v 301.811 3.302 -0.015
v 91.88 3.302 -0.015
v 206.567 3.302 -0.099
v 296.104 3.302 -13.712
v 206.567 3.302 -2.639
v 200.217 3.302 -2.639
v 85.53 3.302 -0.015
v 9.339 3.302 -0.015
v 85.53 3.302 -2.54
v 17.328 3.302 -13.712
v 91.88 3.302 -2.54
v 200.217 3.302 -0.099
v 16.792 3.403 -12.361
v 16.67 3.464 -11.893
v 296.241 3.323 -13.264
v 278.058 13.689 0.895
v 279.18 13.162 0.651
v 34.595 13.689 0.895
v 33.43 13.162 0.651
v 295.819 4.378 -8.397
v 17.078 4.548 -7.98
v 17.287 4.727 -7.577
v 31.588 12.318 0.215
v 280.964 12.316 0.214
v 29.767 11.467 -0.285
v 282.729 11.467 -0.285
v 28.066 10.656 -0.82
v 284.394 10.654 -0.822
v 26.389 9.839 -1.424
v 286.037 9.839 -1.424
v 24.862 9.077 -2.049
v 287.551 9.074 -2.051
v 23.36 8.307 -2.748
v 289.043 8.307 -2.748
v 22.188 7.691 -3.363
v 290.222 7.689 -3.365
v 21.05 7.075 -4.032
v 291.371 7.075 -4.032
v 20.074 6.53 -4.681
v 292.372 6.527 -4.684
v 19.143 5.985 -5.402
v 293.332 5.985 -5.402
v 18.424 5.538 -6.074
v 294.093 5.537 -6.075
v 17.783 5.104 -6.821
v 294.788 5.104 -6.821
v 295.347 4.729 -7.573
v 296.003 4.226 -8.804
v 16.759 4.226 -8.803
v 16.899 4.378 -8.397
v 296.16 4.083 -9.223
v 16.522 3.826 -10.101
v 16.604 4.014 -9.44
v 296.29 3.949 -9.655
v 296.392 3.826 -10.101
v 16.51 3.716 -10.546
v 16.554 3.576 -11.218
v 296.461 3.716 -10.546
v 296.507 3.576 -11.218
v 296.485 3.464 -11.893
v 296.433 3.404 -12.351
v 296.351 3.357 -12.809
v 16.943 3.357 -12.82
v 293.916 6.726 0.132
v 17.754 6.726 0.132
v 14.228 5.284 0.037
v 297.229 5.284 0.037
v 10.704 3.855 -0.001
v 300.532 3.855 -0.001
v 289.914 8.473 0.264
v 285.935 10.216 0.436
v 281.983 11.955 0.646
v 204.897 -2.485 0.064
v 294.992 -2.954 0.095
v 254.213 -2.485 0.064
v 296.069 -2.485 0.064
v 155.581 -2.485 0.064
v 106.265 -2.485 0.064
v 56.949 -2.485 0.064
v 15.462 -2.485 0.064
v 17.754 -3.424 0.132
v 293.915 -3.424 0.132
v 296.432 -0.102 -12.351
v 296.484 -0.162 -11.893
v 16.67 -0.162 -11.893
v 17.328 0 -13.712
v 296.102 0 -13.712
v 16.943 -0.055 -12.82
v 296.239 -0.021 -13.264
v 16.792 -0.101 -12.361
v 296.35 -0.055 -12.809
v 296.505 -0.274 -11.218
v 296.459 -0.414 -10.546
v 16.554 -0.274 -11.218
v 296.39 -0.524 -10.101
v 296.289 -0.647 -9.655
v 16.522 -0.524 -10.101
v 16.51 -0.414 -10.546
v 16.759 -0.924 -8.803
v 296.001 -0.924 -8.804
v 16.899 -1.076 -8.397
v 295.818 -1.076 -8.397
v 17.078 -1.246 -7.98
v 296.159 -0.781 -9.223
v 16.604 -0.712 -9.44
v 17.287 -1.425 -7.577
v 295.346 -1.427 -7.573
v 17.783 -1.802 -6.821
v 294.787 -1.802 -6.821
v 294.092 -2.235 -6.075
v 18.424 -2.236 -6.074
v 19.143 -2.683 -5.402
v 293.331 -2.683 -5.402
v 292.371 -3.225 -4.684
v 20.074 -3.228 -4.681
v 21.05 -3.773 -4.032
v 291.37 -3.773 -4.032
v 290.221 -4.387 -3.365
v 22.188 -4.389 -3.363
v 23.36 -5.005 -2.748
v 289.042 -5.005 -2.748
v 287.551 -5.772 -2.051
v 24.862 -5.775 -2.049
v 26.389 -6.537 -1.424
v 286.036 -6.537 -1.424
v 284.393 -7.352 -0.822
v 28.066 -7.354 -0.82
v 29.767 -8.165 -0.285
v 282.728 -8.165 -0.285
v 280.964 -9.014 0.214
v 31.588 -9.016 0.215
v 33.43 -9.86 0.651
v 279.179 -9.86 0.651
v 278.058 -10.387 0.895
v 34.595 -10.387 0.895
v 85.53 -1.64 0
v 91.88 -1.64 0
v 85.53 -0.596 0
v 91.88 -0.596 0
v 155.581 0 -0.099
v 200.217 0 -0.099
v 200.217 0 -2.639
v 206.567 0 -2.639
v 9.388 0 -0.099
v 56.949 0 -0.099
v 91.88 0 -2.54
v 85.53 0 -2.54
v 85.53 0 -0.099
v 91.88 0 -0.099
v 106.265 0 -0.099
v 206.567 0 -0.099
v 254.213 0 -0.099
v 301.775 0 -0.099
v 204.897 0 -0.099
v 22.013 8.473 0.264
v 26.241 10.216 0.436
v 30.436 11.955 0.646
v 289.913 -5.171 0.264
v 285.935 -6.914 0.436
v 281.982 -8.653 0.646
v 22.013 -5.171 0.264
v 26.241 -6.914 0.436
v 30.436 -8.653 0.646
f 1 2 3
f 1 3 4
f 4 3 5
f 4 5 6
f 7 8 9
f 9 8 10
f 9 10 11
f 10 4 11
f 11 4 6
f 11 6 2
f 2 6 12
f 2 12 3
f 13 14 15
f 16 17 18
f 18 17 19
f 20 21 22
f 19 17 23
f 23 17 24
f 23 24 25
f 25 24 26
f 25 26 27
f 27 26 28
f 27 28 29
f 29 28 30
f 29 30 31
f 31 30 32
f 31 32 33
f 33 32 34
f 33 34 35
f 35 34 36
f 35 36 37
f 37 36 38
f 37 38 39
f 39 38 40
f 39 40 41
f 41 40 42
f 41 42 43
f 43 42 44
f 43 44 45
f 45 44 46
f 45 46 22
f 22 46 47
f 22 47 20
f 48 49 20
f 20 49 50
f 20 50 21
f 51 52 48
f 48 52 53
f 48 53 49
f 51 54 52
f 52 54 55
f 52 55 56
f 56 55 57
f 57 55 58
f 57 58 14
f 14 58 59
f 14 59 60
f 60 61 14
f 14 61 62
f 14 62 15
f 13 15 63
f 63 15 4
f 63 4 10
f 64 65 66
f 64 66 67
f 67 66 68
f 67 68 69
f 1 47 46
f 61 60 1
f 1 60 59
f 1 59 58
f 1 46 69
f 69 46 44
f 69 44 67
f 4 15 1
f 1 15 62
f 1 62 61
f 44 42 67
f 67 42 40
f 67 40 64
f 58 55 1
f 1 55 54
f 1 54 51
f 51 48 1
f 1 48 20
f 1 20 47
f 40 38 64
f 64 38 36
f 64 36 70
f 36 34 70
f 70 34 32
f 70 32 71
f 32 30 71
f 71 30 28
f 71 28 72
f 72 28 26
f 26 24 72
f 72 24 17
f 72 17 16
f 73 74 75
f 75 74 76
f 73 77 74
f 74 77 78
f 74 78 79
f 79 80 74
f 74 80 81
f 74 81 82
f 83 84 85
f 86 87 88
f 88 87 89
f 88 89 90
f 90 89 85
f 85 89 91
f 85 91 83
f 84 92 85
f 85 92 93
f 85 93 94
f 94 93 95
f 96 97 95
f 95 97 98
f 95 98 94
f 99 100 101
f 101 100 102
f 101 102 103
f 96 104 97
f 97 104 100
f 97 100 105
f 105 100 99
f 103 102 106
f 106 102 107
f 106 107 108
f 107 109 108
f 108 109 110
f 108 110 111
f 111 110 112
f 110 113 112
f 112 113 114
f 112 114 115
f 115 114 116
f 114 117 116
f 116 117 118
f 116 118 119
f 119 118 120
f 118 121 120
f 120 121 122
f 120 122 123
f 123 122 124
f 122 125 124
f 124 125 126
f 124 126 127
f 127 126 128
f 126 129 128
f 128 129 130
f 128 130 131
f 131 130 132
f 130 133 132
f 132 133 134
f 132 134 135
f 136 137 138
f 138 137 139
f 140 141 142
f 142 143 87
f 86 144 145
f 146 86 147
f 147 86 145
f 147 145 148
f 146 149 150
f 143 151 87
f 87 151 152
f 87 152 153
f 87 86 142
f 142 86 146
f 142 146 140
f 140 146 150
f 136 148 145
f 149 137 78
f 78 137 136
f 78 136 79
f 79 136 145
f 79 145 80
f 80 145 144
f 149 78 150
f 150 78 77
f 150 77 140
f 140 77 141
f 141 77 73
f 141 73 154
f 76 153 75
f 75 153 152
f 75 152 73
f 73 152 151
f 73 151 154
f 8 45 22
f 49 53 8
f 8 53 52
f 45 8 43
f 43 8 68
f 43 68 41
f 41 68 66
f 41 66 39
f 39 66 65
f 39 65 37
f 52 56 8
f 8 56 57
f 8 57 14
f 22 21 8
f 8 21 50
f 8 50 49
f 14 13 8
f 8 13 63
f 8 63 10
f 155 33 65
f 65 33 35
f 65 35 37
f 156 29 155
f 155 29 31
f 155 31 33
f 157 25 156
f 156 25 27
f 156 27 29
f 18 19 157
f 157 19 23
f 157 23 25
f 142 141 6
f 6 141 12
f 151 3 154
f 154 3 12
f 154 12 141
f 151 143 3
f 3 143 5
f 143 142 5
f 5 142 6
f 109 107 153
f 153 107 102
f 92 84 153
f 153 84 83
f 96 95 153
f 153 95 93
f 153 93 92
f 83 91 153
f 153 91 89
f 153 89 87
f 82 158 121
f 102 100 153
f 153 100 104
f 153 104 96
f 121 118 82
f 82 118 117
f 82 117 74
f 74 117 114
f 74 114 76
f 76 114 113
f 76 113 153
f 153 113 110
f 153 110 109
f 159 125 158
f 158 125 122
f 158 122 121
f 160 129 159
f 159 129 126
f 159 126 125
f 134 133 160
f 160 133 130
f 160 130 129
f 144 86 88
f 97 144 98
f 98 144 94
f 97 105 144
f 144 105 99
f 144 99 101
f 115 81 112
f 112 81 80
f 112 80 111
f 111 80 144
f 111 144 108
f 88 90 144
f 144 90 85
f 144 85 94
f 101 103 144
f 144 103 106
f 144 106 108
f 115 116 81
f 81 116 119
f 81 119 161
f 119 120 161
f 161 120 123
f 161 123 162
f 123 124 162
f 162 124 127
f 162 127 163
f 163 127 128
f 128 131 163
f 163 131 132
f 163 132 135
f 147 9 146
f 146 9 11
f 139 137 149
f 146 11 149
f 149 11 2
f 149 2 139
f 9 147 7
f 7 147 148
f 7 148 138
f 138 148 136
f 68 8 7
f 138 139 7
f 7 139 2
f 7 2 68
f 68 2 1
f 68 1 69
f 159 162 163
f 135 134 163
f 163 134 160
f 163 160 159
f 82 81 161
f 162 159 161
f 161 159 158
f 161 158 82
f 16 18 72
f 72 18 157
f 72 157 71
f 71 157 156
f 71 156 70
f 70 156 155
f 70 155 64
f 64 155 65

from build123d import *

# Parameters (mm, degrees)
BOSS_EXTRUDE1_DEPTH      = 3.302
CHAMFER1_SIZE            = 1.27
CHAMFER1_SIZE2           = 2.723523789
CHAMFER1_PART_2_SIZE     = 1.27
CHAMFER1_PART_2_SIZE2    = 2.723523789
CHAMFER1_PART_3_SIZE     = 1.27
CHAMFER1_PART_3_SIZE2    = 2.723523789
BOSS_EXTRUDE2_DEPTH      = 304.8
LEADING_SIDE_DEPTH       = 8.679028657
LEADING_SIDE_DEPTH_BACK  = 277.442337519
TRAILING_SIDE_DEPTH      = 254
TRAILING_SIDE_DEPTH_BACK = 27.94
SKETCH9_W                = 305.493611557
SKETCH9_H                = 3.302
CUT_EXTRUDE1_DEPTH       = 9.89
CUT_EXTRUDE1_DEPTH_BACK  = 143.24
BOSS_EXTRUDE3_REACH      = 16.738
SKETCH10_W               = 6.35
SKETCH10_H               = 2.54
BOSS_EXTRUDE4_REACH      = 16.738
SKETCH11_W               = 6.35
SKETCH11_H               = 2.54
SKETCH12_R               = 78.609915156
CUT_EXTRUDE3_DEPTH       = 302.817401479


with BuildPart() as part:
    # Sketch1 → Boss-Extrude1 (new body)
    with BuildSketch(Plane(origin=(0, 0, 0), x_dir=(1, 0, 0), z_dir=(0, 1, 0))):
        Polygon((0, 0), (88.9, 142.24), (241.3, 142.24), (304.8, 0), (151.13, 0), (151.13, -8.89), (113.03, -8.89), (113.03, 0), align=None)
    extrude(amount=BOSS_EXTRUDE1_DEPTH)

    # Chamfer1
    chamfer1_edges = [part.edges().sort_by_distance(p)[0] for p in [
        (273.05, 3.302, -71.12),
        (273.05, 0, -71.12),
    ]]
    chamfer1_side = [part.faces().sort_by_distance(p)[0] for p in [
        (273.05, 1.651, -71.12),
    ]]
    chamfer(chamfer1_edges, length=CHAMFER1_SIZE, length2=CHAMFER1_SIZE2, reference=chamfer1_side[0])

    # Chamfer1 part 2
    chamfer1_part_2_edges = [part.edges().sort_by_distance(p)[0] for p in [
        (165.1, 3.302, -142.24),
        (165.1, 0, -142.24),
    ]]
    chamfer1_part_2_side = [part.faces().sort_by_distance(p)[0] for p in [
        (165.1, 1.651, -142.24),
    ]]
    chamfer(chamfer1_part_2_edges, length=CHAMFER1_PART_2_SIZE, length2=CHAMFER1_PART_2_SIZE2, reference=chamfer1_part_2_side[0])

    # Chamfer1 part 3
    chamfer1_part_3_edges = [part.edges().sort_by_distance(p)[0] for p in [
        (44.45, 3.302, -71.12),
        (44.45, 0, -71.12),
    ]]
    chamfer1_part_3_side = [part.faces().sort_by_distance(p)[0] for p in [
        (44.45, 1.651, -71.12),
    ]]
    chamfer(chamfer1_part_3_edges, length=CHAMFER1_PART_3_SIZE, length2=CHAMFER1_PART_3_SIZE2, reference=chamfer1_part_3_side[0])

    # Sketch2 → Boss-Extrude2 (add)
    with BuildSketch(Plane(origin=(0, 0, 0), x_dir=(0, 0, -1), z_dir=(1, 0, 0))):
        with BuildLine():
            Line((0, 3.302), (0.193860014, 3.302))
            ThreePointArc((0.193860014, 3.302), (0.095787095, 7.86512735), (-0.267795454, 12.414803957))
            add(Edge.make_bspline(
                [(-0.267795454, 12.414803957), (-0.672599921, 13.160197553), (-1.025420185, 13.935695512), (-1.319449565, 14.73847888)],
                knots=[0.873023633, 0.873023633, 0.873023633, 0.873023633, 1, 1, 1, 1], degree=3))
            add(Edge.make_bspline(
                [(-1.319449565, 14.73847888), (-0.620020797, 10.967807625), (0.041688756, 7.150478935), (0, 3.302)],
                knots=[0, 0, 0, 0, 1, 1, 1, 1], degree=3))
        make_face()
        with BuildLine():
            ThreePointArc((-0.267795454, 12.414803957), (0.095787095, 7.86512735), (0.193860014, 3.302))
            Line((0.193860014, 3.302), (13.71197658, 3.302))
            add(Edge.make_bspline(
                [(13.71197658, 3.302), (11.020860037, 3.394720033), (7.304618249, 4.403456005), (2.735609274, 8.059966642), (0.759058851, 10.523988305), (-0.267795454, 12.414803957)],
                knots=[0, 0, 0, 0, 0.405371861, 0.550926818, 0.873023633, 0.873023633, 0.873023633, 0.873023633], degree=3))
        make_face()
        with BuildLine():
            Line((13.71197658, 0), (0.099005708, 0))
            ThreePointArc((0.099005708, 0), (0.027136855, -1.243216756), (-0.064479677, -2.485134404))
            add(Edge.make_bspline(
                [(-0.706755386, -7.960561287), (-0.413166837, -6.144437691), (-0.174809494, -4.318730126), (-0.064479677, -2.485134404)],
                knots=[0.306156166, 0.306156166, 0.306156166, 0.306156166, 0.784361963, 0.784361963, 0.784361963, 0.784361963], degree=3))
            ThreePointArc((-0.706755386, -7.960561287), (-0.993529388, -9.701970199), (-1.319449565, -11.43647888))
            add(Edge.make_bspline(
                [(13.71197658, 0), (11.020860037, -0.092720033), (7.304618249, -1.101456005), (2.071072669, -5.289785507), (-0.279565435, -8.597301093), (-1.319449565, -11.43647888)],
                knots=[0, 0, 0, 0, 0.405371861, 0.550926818, 1, 1, 1, 1], degree=3))
        make_face()
    extrude(amount=BOSS_EXTRUDE2_DEPTH)

    # Sketch4 → Leading Side (cut, two sides)
    with BuildSketch(Plane(origin=(0, 0, 0), x_dir=(0, -1, 0), z_dir=(-0.503864435, 0, 0.863782745))) as leading_side_sk:
        Polygon((0, -7.461077899), (0, 8.059009466), (11.69047888, 33.129322328), (11.69047888, -6.284577832), align=None)
        Polygon((-14.99247888, 33.129322328), (-14.99247888, -6.284577832), (-3.302, -7.461077899), (-3.302, 8.059009466), align=None)
    extrude(amount=LEADING_SIDE_DEPTH, mode=Mode.SUBTRACT)
    extrude(leading_side_sk.sketch, amount=-LEADING_SIDE_DEPTH_BACK, mode=Mode.SUBTRACT)

    # Sketch6 → Trailing Side (cut, two sides)
    with BuildSketch(Plane(origin=(45.089267536, 0, 108.213523637), x_dir=(0, -1, 0), z_dir=(-0.38461756, 0, -0.923076016))) as trailing_side_sk:
        Polygon((0, -286.627436809), (0, -278.59888787), (11.43647888, -254.073279765), (11.43647888, -287.965550571), align=None)
        Polygon((-14.73847888, -254.073279765), (-14.73847888, -287.965550571), (-3.302, -286.627436809), (-3.302, -278.600404574), align=None)
    extrude(amount=TRAILING_SIDE_DEPTH, mode=Mode.SUBTRACT)
    extrude(trailing_side_sk.sketch, amount=-TRAILING_SIDE_DEPTH_BACK, mode=Mode.SUBTRACT)

    # Sketch9 → Cut-Extrude1 (cut, two sides)
    with BuildSketch(Plane.XY) as cut_extrude1_sk:
        with Locations((152.259463857, 1.651)):
            Rectangle(SKETCH9_W, SKETCH9_H)
    extrude(amount=CUT_EXTRUDE1_DEPTH, mode=Mode.SUBTRACT)
    extrude(cut_extrude1_sk.sketch, amount=-CUT_EXTRUDE1_DEPTH_BACK, mode=Mode.SUBTRACT)

    # Sketch10 → Boss-Extrude3 (add, up to next)
    with BuildSketch(Plane(origin=(0, 0, 0), x_dir=(1, 0, 0), z_dir=(0, 1, 0)), mode=Mode.PRIVATE) as boss_extrude3_sk1:
        with Locations((203.392401379, 1.369005708)):
            Rectangle(SKETCH10_W, SKETCH10_H)
    boss_extrude3_tool1 = extrude(boss_extrude3_sk1.sketch, amount=BOSS_EXTRUDE3_REACH, mode=Mode.PRIVATE) - part.part
    add(boss_extrude3_tool1.solids().sort_by_distance((203.392401, 0, -1.369006))[0])

    # Sketch11 → Boss-Extrude4 (add, up to next)
    with BuildSketch(Plane.XZ.offset(-3.302), mode=Mode.PRIVATE) as boss_extrude4_sk1:
        with Locations((88.704903276, -1.27)):
            Rectangle(SKETCH11_W, SKETCH11_H)
    boss_extrude4_tool1 = extrude(boss_extrude4_sk1.sketch, amount=BOSS_EXTRUDE4_REACH, mode=Mode.PRIVATE) - part.part
    add(boss_extrude4_tool1.solids().sort_by_distance((88.704903, 3.302, -1.27))[0])

    # Sketch12 → Cut-Extrude3 (cut, through all)
    with BuildSketch(Plane(origin=(0, 0, 0), x_dir=(0, 0, -1), z_dir=(1, 0, 0))):
        with Locations((-78.577787481, 1.651)):
            Circle(SKETCH12_R)
    extrude(amount=CUT_EXTRUDE3_DEPTH, mode=Mode.SUBTRACT)


solid = part.part
